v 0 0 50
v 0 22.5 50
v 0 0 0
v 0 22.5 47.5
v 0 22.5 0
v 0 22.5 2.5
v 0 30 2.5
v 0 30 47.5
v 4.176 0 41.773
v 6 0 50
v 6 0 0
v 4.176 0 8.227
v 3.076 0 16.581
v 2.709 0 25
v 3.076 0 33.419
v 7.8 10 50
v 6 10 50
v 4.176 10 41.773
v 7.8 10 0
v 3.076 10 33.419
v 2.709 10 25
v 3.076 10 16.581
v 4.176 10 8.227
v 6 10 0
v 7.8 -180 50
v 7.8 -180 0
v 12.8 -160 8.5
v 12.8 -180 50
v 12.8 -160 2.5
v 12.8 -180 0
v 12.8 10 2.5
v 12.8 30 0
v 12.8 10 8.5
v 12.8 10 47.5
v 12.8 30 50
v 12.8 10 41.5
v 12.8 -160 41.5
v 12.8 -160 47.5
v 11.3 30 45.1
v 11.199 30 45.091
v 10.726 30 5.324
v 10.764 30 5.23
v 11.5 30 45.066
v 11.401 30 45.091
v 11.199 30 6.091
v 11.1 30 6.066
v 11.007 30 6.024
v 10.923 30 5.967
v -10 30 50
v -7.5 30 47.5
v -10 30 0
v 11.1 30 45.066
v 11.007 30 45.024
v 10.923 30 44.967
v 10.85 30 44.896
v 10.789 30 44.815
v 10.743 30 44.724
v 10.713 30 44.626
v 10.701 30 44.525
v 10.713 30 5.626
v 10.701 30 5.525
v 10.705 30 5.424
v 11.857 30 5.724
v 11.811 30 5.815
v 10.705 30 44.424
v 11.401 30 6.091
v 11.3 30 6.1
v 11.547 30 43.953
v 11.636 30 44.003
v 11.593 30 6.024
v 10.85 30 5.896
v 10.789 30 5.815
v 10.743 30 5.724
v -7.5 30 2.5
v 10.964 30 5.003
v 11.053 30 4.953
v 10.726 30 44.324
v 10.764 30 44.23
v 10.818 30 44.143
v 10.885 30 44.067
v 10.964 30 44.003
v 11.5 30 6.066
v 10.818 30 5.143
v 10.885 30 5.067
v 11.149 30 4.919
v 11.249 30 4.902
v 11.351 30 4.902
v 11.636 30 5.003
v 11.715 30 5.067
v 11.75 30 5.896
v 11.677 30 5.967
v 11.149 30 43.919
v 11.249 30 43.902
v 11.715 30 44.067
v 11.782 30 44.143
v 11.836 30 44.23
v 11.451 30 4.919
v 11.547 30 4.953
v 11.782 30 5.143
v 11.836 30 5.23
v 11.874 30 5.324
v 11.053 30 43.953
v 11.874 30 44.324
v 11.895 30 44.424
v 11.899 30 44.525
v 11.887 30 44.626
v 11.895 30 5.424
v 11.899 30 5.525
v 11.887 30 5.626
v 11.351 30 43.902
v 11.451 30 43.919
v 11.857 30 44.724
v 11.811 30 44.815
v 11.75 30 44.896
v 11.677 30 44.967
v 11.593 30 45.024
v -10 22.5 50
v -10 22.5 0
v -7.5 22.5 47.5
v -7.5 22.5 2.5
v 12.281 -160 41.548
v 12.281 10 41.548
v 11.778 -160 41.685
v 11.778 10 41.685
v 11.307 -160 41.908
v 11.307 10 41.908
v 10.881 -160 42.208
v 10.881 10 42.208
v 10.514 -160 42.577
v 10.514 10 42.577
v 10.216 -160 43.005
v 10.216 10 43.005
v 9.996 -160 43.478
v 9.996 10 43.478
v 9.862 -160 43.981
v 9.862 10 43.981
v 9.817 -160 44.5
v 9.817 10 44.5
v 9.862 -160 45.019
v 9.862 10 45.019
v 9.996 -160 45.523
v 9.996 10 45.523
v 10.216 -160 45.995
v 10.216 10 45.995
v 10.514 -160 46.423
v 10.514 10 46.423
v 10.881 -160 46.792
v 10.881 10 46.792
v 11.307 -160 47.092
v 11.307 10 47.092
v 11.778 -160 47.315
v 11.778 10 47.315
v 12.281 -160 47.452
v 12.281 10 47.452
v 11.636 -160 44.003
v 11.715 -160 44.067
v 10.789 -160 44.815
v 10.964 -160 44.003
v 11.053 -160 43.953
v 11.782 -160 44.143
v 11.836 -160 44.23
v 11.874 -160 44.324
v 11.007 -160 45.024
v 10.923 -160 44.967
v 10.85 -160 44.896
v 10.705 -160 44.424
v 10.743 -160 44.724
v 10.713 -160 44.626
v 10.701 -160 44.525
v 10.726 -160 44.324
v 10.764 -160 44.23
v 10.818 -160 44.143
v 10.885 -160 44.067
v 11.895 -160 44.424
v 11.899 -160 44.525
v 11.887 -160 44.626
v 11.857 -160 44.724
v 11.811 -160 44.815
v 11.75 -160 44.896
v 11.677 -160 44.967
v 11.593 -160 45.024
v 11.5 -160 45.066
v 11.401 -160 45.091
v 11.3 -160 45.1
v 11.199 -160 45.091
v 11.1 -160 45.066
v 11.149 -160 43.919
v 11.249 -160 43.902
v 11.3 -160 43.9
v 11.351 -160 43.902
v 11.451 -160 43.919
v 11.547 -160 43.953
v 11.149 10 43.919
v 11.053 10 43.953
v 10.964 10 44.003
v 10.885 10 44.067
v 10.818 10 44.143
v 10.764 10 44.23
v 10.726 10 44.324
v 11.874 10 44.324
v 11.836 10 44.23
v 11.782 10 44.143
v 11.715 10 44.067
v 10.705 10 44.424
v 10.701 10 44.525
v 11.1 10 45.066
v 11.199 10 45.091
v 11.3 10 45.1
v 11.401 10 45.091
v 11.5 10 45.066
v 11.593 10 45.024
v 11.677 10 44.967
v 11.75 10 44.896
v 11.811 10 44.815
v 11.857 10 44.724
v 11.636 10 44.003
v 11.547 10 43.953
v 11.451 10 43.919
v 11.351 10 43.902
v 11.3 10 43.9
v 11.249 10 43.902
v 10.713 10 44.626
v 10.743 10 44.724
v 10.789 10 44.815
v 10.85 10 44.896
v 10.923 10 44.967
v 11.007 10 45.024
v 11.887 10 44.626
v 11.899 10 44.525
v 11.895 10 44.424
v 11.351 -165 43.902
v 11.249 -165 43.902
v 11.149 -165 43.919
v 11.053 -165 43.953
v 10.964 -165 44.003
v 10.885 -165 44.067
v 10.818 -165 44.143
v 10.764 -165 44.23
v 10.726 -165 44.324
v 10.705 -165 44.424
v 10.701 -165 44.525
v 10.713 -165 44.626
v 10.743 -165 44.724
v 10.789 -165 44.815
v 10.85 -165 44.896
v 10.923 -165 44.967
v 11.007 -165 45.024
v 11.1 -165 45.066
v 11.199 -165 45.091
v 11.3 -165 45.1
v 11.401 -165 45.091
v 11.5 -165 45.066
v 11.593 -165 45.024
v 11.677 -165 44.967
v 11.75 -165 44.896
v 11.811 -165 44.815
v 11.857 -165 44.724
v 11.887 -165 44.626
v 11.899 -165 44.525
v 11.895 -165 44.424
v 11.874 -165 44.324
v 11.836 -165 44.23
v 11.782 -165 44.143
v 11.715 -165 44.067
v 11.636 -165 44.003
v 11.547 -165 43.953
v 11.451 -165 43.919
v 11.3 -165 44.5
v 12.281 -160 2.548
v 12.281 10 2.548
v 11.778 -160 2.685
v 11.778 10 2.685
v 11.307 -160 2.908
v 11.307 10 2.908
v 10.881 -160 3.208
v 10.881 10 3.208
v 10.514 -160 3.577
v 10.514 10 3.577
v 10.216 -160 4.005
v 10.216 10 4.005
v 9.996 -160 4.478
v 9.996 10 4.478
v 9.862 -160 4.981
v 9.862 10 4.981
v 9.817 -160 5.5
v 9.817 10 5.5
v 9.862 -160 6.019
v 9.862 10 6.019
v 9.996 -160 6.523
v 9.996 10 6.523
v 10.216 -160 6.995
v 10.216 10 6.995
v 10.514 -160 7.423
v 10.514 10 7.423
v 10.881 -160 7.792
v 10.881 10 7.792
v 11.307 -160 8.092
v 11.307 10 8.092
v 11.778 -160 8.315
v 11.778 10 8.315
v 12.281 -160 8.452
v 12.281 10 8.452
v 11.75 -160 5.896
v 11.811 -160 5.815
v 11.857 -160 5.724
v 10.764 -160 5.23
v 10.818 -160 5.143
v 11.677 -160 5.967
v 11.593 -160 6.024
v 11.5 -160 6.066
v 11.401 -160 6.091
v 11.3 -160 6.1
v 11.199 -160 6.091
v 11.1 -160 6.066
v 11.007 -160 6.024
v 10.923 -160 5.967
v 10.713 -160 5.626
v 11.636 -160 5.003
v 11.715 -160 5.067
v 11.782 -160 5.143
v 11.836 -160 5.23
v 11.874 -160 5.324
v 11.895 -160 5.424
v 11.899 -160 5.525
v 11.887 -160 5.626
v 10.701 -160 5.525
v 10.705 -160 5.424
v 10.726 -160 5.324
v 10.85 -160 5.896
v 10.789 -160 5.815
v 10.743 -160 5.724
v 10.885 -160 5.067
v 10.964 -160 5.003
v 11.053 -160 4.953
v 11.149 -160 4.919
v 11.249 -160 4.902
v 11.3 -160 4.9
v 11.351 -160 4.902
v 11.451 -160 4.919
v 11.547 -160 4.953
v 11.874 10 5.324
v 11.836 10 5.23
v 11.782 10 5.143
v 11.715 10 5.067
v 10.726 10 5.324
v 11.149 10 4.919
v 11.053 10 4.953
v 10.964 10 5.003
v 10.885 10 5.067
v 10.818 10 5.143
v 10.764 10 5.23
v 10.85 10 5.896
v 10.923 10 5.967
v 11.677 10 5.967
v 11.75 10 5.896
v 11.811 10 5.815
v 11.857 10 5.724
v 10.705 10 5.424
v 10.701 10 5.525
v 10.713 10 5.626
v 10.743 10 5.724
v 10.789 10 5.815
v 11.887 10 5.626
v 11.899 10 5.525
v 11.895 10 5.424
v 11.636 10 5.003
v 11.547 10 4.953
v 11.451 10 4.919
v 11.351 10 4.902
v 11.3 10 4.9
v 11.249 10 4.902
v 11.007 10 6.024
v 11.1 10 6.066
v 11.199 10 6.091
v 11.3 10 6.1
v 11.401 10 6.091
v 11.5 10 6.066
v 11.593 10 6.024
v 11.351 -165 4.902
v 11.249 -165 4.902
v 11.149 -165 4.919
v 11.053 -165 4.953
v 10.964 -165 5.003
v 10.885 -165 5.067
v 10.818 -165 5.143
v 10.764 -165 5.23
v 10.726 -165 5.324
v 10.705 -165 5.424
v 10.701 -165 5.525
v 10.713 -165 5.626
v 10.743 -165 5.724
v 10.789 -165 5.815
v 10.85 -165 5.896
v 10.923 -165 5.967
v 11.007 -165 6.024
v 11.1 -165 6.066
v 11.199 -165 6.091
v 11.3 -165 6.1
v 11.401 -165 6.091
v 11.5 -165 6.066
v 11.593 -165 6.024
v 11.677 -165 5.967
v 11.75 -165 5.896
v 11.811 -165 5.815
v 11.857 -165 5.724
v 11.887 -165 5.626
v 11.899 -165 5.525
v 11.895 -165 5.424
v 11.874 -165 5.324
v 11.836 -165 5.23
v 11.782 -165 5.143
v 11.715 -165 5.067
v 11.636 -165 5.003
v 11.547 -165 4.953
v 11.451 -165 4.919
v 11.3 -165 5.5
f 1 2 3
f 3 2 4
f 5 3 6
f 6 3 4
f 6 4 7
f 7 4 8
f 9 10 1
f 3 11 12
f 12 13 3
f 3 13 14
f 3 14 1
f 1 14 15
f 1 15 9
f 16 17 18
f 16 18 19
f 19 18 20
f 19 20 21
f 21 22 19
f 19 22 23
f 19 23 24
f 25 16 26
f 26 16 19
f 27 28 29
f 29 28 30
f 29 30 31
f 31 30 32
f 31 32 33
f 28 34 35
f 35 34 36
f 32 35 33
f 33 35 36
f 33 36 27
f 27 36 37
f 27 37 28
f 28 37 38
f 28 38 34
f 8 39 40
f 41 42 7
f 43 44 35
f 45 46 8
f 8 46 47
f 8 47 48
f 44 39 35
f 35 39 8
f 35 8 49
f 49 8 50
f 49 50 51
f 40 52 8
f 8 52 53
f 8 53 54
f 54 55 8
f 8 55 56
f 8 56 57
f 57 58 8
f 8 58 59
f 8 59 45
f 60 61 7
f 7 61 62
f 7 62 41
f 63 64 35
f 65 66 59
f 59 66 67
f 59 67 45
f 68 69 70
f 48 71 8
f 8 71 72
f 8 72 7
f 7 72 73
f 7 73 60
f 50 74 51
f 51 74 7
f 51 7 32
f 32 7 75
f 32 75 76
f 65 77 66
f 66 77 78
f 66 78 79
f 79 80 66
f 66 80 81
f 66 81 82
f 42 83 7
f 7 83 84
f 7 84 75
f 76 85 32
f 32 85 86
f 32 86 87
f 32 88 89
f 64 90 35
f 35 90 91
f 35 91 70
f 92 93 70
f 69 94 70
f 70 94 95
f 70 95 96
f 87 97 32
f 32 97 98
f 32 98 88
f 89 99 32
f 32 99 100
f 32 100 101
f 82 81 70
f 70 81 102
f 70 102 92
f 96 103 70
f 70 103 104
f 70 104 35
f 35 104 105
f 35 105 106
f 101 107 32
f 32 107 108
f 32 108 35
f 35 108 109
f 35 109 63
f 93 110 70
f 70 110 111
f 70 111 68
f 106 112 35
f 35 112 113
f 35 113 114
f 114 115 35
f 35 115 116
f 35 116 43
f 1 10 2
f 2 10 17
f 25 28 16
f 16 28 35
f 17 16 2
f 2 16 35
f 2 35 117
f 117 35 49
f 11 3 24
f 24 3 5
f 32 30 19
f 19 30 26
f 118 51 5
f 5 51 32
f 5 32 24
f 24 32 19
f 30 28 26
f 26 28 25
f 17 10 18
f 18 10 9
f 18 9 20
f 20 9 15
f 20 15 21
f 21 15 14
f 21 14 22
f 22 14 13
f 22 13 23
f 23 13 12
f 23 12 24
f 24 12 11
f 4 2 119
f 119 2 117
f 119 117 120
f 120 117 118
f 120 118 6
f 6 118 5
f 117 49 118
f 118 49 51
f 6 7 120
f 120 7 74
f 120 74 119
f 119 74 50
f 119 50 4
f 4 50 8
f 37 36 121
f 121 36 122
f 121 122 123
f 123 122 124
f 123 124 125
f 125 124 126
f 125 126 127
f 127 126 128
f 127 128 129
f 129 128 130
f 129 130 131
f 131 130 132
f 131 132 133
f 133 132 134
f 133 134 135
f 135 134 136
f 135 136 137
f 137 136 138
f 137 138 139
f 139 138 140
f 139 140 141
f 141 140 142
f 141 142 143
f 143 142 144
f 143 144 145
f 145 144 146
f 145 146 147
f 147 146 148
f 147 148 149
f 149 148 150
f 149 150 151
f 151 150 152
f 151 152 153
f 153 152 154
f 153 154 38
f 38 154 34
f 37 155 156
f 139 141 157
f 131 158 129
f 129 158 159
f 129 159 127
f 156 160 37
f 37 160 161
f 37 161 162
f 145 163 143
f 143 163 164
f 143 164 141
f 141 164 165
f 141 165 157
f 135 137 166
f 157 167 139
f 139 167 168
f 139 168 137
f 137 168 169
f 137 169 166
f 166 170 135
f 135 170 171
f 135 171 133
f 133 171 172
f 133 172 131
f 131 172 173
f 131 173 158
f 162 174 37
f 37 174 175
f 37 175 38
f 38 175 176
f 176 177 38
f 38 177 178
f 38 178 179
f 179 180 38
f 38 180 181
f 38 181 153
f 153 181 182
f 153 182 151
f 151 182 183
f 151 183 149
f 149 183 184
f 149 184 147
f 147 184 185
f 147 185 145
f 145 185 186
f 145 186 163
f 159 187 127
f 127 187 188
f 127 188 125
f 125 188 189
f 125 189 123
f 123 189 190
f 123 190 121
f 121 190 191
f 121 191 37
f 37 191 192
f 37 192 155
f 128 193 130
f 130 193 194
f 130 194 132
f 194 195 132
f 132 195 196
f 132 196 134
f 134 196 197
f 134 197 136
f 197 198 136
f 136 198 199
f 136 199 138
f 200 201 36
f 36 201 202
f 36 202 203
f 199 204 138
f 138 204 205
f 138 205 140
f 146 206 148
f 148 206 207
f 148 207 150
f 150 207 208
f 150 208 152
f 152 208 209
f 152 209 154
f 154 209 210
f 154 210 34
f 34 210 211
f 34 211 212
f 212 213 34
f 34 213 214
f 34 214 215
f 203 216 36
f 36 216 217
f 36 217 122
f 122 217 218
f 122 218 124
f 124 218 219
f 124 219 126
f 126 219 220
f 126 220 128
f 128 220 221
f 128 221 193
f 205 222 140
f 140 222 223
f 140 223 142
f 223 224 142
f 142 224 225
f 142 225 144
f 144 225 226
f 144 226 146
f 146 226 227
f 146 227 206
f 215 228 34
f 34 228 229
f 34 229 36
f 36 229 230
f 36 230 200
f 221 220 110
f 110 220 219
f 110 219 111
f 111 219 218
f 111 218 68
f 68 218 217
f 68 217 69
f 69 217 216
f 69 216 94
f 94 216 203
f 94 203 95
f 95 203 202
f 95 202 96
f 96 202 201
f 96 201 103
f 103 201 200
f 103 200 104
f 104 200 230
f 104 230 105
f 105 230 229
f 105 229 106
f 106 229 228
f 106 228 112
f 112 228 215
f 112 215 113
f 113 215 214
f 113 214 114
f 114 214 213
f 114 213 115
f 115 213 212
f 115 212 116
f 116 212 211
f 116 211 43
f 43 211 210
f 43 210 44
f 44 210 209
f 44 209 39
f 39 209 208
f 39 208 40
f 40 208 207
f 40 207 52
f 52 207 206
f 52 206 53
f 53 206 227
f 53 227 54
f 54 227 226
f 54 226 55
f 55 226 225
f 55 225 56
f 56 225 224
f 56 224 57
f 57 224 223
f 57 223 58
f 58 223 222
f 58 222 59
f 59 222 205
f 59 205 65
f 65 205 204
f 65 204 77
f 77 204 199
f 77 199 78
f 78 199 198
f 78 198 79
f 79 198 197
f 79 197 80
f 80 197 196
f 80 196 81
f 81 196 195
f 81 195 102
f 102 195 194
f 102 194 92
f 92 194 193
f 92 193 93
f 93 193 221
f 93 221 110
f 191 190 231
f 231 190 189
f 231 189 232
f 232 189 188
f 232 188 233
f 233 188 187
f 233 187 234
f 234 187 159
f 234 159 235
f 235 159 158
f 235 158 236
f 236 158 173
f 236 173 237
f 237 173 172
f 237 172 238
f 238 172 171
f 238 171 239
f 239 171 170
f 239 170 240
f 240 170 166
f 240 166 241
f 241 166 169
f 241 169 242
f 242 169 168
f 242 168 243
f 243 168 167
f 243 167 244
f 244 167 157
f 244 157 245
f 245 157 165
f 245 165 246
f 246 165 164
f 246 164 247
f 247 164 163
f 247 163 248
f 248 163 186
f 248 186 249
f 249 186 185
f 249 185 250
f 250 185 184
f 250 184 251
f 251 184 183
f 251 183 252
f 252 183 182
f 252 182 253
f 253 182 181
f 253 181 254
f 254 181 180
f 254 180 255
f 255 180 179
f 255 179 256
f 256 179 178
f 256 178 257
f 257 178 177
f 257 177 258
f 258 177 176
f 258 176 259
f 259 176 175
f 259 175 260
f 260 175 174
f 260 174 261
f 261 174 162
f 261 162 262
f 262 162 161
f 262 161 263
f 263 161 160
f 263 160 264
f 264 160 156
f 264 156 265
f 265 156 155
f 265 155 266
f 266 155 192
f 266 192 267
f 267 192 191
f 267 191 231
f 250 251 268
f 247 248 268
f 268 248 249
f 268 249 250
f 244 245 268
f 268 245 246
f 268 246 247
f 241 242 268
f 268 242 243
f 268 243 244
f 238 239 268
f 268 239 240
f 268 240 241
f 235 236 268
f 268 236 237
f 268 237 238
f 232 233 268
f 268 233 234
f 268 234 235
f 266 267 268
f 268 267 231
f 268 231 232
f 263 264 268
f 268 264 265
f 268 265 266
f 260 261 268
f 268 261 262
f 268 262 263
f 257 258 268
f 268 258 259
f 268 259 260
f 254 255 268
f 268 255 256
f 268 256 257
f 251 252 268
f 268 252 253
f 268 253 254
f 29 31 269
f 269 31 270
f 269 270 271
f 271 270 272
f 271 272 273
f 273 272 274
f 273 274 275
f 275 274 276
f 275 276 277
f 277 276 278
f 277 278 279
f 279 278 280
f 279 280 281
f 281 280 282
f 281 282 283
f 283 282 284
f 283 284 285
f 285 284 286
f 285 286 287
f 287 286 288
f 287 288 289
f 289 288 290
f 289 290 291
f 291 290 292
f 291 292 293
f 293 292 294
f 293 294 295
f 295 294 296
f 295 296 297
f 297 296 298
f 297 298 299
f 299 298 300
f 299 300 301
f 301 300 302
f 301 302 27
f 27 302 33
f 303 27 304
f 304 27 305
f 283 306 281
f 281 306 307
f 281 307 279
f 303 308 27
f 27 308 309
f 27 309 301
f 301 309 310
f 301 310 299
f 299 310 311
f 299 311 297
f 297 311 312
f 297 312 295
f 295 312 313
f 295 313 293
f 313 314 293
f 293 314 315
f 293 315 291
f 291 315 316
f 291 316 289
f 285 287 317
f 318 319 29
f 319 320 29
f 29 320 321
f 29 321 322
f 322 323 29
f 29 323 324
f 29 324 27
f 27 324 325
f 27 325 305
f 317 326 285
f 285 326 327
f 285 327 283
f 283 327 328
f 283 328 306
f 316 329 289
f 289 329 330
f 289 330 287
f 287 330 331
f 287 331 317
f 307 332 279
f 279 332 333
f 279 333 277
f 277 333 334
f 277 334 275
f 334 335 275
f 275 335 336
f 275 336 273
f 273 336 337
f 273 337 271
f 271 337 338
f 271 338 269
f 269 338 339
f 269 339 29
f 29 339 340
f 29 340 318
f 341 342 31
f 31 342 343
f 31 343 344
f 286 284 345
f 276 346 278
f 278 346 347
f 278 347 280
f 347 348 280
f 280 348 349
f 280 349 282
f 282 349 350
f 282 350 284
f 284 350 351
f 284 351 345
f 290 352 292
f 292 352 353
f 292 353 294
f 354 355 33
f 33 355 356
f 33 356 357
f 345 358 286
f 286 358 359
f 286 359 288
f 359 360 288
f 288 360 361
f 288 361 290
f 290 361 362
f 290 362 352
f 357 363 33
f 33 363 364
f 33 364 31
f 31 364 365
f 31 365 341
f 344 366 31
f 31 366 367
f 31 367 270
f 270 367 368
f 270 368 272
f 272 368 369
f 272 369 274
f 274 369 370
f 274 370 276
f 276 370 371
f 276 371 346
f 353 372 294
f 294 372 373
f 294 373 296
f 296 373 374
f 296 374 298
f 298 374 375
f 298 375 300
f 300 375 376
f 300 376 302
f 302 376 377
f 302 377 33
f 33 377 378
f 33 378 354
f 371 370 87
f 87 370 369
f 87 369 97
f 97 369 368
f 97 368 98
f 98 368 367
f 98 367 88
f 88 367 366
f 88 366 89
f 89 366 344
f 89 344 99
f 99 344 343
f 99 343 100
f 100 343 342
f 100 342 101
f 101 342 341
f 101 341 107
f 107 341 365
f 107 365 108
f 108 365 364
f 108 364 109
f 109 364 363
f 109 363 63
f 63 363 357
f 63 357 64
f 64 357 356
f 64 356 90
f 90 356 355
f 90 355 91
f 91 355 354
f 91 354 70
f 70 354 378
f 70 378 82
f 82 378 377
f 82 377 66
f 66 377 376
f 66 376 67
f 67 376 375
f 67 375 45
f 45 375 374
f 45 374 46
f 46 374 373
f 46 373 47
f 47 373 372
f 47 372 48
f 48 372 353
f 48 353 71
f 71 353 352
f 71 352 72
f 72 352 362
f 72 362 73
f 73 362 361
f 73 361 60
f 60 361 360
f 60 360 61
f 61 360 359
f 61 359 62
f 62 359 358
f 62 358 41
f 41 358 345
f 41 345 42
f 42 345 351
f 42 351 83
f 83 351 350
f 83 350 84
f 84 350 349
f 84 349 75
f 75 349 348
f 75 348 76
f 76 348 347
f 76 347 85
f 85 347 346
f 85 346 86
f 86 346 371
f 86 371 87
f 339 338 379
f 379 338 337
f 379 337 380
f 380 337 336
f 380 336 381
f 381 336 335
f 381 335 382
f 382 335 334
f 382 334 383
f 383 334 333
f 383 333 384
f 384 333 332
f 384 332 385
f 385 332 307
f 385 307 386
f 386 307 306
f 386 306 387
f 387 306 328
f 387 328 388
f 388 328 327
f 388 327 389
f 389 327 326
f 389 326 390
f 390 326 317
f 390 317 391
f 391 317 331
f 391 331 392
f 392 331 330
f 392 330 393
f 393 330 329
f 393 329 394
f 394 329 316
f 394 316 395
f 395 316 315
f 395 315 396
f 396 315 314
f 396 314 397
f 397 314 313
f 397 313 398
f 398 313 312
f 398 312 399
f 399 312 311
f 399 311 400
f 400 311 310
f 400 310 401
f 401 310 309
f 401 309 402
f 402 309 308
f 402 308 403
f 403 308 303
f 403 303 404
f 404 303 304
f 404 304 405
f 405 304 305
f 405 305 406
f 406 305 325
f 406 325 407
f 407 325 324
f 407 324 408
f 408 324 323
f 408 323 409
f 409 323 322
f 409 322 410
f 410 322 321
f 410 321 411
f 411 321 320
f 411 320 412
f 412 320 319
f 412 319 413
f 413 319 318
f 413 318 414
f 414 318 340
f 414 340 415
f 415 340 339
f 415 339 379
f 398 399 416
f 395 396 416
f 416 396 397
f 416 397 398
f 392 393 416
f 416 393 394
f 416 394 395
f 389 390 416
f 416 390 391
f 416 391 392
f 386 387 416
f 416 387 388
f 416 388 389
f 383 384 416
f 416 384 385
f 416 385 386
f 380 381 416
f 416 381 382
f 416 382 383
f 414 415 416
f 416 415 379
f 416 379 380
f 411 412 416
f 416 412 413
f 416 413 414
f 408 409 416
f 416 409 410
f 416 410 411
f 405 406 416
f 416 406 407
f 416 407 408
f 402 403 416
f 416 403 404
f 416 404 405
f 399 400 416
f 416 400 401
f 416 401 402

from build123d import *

# Parameters (mm, degrees)
BOSS_EXTRUDE1_DEPTH      = 50
SKETCH3_W                = 5
SKETCH3_H                = 50
BOSS_EXTRUDE3_DEPTH      = 180
CORTE_EXTRUS_O1_DEPTH    = 10
ESBO_O3_W                = 50
ESBO_O3_H                = 7.5
RESSALTO_EXTRUS_O2_DEPTH = 10
ESBO_O4_W                = 7.5
ESBO_O4_H                = 45
CORTE_EXTRUS_O2_DEPTH    = 10
CORTE_EXTRUS_O3_START    = -20
CORTE_EXTRUS_O3_DEPTH    = 170
ESBO_O6_R                = 0.6
CORTE_EXTRUS_O4_DEPTH    = 195
PADR_O_LINEAR1_COUNT     = 2
PADR_O_LINEAR1_PITCH     = 39


with BuildPart() as part:
    # Sketch1 → Boss-Extrude1 (new body)
    with BuildSketch(Plane.XY):
        Polygon((0, 0), (0, 30), (12.8, 30), (12.8, 0), (7.8, 0), (7.8, 10), (6, 10), (6, 0), align=None)
    extrude(amount=BOSS_EXTRUDE1_DEPTH)

    # Sketch3 → Boss-Extrude3 (add)
    with BuildSketch(Plane.XZ):
        with Locations((10.3, 25)):
            Rectangle(SKETCH3_W, SKETCH3_H)
    extrude(amount=BOSS_EXTRUDE3_DEPTH)

    # Esboço2 → Corte-extrusão1 (cut)
    with BuildSketch(Plane.XZ):
        with BuildLine():
            Line((6, 50), (6, 0))
            ThreePointArc((6, 0), (2.708949196, 25), (6, 50))
        make_face()
    extrude(amount=-CORTE_EXTRUS_O1_DEPTH, mode=Mode.SUBTRACT)

    # Esboço3 → Ressalto-extrusão2 (add)
    with BuildSketch(Plane.ZY):
        with Locations((25, 26.25)):
            Rectangle(ESBO_O3_W, ESBO_O3_H)
    extrude(amount=RESSALTO_EXTRUS_O2_DEPTH)

    # Esboço4 → Corte-extrusão2 (cut)
    with BuildSketch(Plane.XZ.offset(-22.5)):
        with Locations((-3.75, 25)):
            Rectangle(ESBO_O4_W, ESBO_O4_H)
    extrude(amount=-CORTE_EXTRUS_O2_DEPTH, mode=Mode.SUBTRACT)

    # Esboço5 → Corte-extrusão3 (cut)
    with BuildSketch(Plane(origin=(0, 30, 0), x_dir=(1, 0, 0), z_dir=(0, 1, 0)).offset(CORTE_EXTRUS_O3_START)):
        with BuildLine():
            Line((12.8, -41.5000945), (12.8, -47.5))
            ThreePointArc((12.8, -47.5), (9.816837413, -44.50004725), (12.8, -41.5000945))
        make_face()
    corte_extrus_o3 = extrude(amount=-CORTE_EXTRUS_O3_DEPTH, mode=Mode.SUBTRACT)

    # Esboço6 → Corte-extrusão4 (cut)
    with BuildSketch(Plane(origin=(0, 30, 0), x_dir=(1, 0, 0), z_dir=(0, 1, 0))):
        with Locations(Location((11.3, -44.5, 0), (0, 0, 270))):
            Circle(ESBO_O6_R)
    corte_extrus_o4 = extrude(amount=-CORTE_EXTRUS_O4_DEPTH, mode=Mode.SUBTRACT)

    # Padrão linear1: Corte-extrusão3, Corte-extrusão4 ×2
    with Locations(*[(0, 0, -i * PADR_O_LINEAR1_PITCH) for i in range(1, PADR_O_LINEAR1_COUNT)]):
        add(corte_extrus_o3, mode=Mode.SUBTRACT)
        add(corte_extrus_o4, mode=Mode.SUBTRACT)


solid = part.part
